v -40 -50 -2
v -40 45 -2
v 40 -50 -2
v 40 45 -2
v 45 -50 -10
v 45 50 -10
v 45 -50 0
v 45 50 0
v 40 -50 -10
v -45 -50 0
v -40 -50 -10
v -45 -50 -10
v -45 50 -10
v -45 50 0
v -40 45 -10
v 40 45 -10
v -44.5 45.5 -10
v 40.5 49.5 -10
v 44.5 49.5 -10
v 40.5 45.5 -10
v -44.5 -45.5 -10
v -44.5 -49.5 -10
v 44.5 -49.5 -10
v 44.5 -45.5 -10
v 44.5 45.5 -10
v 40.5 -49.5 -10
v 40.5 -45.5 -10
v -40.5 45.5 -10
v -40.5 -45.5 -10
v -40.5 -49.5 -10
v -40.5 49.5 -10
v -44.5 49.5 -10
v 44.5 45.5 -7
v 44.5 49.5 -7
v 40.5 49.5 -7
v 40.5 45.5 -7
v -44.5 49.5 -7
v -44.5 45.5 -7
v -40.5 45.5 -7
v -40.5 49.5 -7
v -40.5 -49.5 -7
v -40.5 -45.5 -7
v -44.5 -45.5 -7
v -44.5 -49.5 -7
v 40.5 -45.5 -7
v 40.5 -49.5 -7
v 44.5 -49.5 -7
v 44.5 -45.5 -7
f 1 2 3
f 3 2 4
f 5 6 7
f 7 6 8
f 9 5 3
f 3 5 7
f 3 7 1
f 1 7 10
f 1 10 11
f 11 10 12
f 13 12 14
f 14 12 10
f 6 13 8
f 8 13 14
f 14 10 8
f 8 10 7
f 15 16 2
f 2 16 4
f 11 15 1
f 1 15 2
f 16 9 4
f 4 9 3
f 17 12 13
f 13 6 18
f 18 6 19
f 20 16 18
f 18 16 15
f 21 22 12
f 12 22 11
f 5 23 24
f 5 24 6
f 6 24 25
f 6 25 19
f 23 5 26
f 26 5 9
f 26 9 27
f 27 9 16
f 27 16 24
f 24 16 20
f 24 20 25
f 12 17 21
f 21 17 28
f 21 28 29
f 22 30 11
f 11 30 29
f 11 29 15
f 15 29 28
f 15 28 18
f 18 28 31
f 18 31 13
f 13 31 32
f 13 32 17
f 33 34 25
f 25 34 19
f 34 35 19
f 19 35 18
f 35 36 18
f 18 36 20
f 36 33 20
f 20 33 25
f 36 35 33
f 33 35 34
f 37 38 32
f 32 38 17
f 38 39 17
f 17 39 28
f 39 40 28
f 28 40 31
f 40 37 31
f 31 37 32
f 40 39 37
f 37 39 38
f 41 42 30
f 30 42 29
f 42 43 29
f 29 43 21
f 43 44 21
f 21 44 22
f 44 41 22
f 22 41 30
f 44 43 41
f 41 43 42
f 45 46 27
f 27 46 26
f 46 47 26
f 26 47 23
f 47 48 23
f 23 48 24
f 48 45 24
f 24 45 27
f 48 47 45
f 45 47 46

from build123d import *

# Parameters (mm, degrees)
SKETCH1_W           = 90
SKETCH1_H           = 100
BOSS_EXTRUDE1_DEPTH = 2
BOSS_EXTRUDE2_DEPTH = 8
SKETCH3_W           = 4
SKETCH3_H           = 4
CUT_EXTRUDE2_DEPTH  = 3


with BuildPart() as part:
    # Sketch1 → Boss-Extrude1 (new body)
    with BuildSketch(Plane.XY):
        Rectangle(SKETCH1_W, SKETCH1_H)
    extrude(amount=-BOSS_EXTRUDE1_DEPTH)

    # Sketch2 → Boss-Extrude2 (add)
    with BuildSketch(Plane(origin=(0, 0, -2), x_dir=(-1, 0, 0), z_dir=(0, 0, -1))):
        Polygon((-45, 50), (-45, -50), (-40, -50), (-40, -47.5), (-40, 45), (40, 45), (40, -47.5), (40, -50), (45, -50), (45, 50), align=None)
    extrude(amount=BOSS_EXTRUDE2_DEPTH)

    # Sketch3 → Cut-Extrude2 (cut)
    with BuildSketch(Plane(origin=(0, 0, -10), x_dir=(-1, 0, 0), z_dir=(0, 0, -1))):
        with Locations((-42.5, 47.5)):
            Rectangle(SKETCH3_W, SKETCH3_H)
        with Locations((42.5, 47.5)):
            Rectangle(SKETCH3_W, SKETCH3_H)
        with Locations((42.5, -47.5)):
            Rectangle(SKETCH3_W, SKETCH3_H)
        with Locations((-42.5, -47.5)):
            Rectangle(SKETCH3_W, SKETCH3_H)
    extrude(amount=-CUT_EXTRUDE2_DEPTH, mode=Mode.SUBTRACT)


solid = part.part
